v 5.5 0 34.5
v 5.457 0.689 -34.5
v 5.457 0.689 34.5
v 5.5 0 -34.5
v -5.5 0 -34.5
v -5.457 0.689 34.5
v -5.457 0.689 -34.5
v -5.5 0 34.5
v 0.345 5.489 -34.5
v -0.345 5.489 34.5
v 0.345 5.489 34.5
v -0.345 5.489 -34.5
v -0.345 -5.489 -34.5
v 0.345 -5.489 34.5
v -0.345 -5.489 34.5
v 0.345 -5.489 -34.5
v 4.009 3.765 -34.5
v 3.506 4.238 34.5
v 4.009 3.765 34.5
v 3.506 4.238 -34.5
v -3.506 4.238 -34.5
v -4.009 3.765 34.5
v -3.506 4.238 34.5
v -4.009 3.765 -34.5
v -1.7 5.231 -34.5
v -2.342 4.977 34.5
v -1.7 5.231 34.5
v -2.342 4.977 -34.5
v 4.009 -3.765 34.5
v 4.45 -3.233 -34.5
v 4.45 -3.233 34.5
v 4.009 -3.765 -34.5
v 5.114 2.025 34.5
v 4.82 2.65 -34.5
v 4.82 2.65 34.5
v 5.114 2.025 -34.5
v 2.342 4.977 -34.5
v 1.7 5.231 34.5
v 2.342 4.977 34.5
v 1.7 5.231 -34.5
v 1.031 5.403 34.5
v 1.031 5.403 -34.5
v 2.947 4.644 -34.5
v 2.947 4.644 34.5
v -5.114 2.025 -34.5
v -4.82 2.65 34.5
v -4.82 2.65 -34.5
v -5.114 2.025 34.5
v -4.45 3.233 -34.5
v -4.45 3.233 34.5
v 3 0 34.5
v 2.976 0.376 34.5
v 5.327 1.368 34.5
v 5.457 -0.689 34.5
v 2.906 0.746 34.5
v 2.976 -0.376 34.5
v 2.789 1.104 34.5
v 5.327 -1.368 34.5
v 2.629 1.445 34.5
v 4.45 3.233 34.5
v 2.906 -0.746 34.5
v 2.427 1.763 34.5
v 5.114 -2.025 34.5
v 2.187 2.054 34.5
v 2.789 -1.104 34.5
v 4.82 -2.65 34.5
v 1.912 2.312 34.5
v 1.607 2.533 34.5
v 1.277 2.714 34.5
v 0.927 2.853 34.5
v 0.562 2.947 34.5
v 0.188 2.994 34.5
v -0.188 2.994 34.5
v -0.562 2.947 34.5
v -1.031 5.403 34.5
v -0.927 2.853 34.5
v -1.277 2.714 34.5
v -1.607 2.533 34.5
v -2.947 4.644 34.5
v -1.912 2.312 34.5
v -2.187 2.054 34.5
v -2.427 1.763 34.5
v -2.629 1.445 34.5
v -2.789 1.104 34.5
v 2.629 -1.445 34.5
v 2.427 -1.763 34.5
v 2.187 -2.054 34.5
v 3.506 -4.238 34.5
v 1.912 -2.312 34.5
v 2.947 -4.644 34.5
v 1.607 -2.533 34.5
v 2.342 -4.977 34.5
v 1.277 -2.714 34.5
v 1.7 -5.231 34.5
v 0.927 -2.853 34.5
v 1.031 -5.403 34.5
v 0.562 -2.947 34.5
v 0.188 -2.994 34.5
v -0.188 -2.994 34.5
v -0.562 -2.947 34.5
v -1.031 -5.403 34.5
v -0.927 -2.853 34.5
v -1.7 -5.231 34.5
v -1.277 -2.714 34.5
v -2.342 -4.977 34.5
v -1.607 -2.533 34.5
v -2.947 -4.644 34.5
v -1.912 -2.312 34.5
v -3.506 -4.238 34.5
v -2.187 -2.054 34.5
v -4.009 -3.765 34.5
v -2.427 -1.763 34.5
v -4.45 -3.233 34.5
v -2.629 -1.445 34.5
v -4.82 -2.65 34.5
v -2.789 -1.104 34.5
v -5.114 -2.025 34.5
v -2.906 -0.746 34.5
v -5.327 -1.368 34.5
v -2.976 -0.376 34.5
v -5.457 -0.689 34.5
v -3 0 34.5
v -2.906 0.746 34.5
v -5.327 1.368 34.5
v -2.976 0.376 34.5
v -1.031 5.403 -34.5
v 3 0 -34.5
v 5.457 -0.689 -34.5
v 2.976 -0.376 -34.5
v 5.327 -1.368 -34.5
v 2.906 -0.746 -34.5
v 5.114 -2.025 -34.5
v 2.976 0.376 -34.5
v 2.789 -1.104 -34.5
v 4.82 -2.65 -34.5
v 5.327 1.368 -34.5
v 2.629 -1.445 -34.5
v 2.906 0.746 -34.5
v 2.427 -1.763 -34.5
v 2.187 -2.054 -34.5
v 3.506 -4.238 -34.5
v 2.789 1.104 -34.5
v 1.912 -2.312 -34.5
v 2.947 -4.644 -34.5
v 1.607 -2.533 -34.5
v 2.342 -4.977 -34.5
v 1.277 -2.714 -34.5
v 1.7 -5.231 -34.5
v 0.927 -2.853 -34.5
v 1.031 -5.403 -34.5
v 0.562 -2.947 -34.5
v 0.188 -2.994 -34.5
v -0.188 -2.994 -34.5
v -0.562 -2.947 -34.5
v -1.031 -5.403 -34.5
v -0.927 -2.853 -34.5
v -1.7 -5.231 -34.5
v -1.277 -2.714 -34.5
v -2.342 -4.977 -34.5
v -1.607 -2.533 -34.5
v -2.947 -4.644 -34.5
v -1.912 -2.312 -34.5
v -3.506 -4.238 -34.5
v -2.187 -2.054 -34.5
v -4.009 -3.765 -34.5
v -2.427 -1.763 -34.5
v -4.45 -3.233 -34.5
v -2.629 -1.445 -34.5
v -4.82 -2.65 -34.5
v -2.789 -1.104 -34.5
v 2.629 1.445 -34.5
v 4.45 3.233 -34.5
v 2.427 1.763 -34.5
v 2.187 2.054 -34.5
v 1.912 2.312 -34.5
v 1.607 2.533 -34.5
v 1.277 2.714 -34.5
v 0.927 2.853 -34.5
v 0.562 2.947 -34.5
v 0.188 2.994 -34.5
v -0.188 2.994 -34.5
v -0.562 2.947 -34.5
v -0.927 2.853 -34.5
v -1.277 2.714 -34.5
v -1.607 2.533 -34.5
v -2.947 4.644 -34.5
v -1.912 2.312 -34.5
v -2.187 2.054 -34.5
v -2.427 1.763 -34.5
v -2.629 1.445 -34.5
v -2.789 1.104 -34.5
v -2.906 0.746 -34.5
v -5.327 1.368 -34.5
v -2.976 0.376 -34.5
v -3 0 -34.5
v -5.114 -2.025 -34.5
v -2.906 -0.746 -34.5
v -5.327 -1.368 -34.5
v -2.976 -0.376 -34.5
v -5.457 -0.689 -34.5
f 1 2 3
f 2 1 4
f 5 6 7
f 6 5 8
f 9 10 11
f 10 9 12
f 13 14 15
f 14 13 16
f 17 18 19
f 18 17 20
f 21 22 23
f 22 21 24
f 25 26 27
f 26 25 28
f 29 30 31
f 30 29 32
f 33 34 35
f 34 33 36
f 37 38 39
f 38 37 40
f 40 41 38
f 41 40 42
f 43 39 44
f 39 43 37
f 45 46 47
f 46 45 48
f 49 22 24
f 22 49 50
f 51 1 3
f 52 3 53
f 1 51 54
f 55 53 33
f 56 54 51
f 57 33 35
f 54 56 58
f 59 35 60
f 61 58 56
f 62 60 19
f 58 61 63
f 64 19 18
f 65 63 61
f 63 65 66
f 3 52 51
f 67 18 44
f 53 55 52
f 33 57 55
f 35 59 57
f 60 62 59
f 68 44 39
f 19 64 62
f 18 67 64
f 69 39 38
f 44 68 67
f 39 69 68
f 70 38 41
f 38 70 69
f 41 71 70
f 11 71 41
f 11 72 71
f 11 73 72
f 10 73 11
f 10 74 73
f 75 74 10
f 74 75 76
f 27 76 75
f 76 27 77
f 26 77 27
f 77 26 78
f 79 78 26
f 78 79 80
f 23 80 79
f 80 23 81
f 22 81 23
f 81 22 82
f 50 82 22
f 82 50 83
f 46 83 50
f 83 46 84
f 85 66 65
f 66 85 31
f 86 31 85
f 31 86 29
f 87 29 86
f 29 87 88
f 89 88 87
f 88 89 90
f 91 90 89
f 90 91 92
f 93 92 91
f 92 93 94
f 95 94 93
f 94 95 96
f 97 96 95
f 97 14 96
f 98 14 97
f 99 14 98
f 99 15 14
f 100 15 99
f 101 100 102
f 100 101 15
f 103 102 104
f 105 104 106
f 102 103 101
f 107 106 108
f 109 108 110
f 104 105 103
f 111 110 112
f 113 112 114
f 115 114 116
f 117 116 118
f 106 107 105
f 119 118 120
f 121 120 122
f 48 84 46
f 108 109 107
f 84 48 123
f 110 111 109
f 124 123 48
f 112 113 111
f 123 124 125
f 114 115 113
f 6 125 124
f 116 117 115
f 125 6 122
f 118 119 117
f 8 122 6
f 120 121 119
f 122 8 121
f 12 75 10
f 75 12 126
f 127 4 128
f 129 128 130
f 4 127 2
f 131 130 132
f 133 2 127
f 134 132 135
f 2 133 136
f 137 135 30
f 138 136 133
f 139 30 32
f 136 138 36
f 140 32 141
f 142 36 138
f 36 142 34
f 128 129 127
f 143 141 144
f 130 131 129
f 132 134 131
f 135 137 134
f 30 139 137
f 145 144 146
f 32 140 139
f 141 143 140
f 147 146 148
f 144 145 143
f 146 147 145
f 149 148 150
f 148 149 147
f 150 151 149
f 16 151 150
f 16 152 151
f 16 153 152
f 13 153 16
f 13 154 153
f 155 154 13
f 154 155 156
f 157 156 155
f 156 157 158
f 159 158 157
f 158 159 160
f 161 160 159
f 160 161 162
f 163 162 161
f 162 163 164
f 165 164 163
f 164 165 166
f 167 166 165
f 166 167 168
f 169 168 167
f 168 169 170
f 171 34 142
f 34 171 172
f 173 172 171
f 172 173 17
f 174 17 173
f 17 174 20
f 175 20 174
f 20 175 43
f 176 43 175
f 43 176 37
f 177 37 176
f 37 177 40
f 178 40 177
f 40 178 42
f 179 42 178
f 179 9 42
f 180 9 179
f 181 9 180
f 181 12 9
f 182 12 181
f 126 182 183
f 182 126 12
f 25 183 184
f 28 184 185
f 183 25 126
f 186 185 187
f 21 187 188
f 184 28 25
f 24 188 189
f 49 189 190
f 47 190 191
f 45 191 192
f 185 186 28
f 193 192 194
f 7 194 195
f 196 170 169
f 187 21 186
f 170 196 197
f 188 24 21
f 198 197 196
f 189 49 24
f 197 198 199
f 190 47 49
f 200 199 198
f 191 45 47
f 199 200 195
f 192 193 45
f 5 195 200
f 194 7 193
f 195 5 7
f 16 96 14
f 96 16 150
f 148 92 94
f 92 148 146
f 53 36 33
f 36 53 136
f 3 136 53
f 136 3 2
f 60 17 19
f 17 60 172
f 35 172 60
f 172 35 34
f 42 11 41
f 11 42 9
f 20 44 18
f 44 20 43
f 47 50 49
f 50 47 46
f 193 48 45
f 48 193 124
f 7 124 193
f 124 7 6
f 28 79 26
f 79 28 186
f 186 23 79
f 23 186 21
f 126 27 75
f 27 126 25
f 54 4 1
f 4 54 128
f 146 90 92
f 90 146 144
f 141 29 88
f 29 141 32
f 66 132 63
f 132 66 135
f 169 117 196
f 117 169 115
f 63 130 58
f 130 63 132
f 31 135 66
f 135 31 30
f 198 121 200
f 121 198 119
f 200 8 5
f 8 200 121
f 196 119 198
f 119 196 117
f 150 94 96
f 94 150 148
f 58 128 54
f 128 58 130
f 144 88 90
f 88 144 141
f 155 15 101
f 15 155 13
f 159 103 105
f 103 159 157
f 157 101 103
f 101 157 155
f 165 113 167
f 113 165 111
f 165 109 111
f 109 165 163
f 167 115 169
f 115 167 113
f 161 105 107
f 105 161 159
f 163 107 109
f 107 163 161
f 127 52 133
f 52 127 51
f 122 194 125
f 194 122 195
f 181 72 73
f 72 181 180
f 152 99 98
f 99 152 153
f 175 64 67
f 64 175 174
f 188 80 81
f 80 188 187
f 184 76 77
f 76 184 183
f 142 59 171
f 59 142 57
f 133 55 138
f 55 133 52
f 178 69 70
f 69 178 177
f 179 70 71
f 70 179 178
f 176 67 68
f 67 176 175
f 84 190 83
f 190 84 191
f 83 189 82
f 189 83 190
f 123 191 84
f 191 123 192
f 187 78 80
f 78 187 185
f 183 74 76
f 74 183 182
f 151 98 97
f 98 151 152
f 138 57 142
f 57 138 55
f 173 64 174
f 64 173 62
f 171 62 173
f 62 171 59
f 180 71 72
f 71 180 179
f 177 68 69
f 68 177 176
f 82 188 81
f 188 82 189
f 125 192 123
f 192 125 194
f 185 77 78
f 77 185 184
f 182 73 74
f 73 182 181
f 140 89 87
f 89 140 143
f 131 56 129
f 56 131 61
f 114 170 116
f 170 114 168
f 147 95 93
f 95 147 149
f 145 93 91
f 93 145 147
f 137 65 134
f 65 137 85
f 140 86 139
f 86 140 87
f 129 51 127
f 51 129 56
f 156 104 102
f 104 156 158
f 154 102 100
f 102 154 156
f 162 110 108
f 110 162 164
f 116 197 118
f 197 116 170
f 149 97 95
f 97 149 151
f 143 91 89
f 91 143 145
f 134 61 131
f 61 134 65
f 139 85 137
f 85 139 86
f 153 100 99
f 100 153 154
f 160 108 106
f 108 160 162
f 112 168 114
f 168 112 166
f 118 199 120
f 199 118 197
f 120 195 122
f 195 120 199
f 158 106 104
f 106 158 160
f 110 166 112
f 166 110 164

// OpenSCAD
$fn = 50;


difference() {
	union() {
		translate(v = [0, 0, -34.5000000000]) {
			cylinder(h = 69, r = 5.5000000000);
		}
	}
	union() {
		translate(v = [0, 0, -100.0000000000]) {
			cylinder(h = 200, r = 3);
		}
	}
}
